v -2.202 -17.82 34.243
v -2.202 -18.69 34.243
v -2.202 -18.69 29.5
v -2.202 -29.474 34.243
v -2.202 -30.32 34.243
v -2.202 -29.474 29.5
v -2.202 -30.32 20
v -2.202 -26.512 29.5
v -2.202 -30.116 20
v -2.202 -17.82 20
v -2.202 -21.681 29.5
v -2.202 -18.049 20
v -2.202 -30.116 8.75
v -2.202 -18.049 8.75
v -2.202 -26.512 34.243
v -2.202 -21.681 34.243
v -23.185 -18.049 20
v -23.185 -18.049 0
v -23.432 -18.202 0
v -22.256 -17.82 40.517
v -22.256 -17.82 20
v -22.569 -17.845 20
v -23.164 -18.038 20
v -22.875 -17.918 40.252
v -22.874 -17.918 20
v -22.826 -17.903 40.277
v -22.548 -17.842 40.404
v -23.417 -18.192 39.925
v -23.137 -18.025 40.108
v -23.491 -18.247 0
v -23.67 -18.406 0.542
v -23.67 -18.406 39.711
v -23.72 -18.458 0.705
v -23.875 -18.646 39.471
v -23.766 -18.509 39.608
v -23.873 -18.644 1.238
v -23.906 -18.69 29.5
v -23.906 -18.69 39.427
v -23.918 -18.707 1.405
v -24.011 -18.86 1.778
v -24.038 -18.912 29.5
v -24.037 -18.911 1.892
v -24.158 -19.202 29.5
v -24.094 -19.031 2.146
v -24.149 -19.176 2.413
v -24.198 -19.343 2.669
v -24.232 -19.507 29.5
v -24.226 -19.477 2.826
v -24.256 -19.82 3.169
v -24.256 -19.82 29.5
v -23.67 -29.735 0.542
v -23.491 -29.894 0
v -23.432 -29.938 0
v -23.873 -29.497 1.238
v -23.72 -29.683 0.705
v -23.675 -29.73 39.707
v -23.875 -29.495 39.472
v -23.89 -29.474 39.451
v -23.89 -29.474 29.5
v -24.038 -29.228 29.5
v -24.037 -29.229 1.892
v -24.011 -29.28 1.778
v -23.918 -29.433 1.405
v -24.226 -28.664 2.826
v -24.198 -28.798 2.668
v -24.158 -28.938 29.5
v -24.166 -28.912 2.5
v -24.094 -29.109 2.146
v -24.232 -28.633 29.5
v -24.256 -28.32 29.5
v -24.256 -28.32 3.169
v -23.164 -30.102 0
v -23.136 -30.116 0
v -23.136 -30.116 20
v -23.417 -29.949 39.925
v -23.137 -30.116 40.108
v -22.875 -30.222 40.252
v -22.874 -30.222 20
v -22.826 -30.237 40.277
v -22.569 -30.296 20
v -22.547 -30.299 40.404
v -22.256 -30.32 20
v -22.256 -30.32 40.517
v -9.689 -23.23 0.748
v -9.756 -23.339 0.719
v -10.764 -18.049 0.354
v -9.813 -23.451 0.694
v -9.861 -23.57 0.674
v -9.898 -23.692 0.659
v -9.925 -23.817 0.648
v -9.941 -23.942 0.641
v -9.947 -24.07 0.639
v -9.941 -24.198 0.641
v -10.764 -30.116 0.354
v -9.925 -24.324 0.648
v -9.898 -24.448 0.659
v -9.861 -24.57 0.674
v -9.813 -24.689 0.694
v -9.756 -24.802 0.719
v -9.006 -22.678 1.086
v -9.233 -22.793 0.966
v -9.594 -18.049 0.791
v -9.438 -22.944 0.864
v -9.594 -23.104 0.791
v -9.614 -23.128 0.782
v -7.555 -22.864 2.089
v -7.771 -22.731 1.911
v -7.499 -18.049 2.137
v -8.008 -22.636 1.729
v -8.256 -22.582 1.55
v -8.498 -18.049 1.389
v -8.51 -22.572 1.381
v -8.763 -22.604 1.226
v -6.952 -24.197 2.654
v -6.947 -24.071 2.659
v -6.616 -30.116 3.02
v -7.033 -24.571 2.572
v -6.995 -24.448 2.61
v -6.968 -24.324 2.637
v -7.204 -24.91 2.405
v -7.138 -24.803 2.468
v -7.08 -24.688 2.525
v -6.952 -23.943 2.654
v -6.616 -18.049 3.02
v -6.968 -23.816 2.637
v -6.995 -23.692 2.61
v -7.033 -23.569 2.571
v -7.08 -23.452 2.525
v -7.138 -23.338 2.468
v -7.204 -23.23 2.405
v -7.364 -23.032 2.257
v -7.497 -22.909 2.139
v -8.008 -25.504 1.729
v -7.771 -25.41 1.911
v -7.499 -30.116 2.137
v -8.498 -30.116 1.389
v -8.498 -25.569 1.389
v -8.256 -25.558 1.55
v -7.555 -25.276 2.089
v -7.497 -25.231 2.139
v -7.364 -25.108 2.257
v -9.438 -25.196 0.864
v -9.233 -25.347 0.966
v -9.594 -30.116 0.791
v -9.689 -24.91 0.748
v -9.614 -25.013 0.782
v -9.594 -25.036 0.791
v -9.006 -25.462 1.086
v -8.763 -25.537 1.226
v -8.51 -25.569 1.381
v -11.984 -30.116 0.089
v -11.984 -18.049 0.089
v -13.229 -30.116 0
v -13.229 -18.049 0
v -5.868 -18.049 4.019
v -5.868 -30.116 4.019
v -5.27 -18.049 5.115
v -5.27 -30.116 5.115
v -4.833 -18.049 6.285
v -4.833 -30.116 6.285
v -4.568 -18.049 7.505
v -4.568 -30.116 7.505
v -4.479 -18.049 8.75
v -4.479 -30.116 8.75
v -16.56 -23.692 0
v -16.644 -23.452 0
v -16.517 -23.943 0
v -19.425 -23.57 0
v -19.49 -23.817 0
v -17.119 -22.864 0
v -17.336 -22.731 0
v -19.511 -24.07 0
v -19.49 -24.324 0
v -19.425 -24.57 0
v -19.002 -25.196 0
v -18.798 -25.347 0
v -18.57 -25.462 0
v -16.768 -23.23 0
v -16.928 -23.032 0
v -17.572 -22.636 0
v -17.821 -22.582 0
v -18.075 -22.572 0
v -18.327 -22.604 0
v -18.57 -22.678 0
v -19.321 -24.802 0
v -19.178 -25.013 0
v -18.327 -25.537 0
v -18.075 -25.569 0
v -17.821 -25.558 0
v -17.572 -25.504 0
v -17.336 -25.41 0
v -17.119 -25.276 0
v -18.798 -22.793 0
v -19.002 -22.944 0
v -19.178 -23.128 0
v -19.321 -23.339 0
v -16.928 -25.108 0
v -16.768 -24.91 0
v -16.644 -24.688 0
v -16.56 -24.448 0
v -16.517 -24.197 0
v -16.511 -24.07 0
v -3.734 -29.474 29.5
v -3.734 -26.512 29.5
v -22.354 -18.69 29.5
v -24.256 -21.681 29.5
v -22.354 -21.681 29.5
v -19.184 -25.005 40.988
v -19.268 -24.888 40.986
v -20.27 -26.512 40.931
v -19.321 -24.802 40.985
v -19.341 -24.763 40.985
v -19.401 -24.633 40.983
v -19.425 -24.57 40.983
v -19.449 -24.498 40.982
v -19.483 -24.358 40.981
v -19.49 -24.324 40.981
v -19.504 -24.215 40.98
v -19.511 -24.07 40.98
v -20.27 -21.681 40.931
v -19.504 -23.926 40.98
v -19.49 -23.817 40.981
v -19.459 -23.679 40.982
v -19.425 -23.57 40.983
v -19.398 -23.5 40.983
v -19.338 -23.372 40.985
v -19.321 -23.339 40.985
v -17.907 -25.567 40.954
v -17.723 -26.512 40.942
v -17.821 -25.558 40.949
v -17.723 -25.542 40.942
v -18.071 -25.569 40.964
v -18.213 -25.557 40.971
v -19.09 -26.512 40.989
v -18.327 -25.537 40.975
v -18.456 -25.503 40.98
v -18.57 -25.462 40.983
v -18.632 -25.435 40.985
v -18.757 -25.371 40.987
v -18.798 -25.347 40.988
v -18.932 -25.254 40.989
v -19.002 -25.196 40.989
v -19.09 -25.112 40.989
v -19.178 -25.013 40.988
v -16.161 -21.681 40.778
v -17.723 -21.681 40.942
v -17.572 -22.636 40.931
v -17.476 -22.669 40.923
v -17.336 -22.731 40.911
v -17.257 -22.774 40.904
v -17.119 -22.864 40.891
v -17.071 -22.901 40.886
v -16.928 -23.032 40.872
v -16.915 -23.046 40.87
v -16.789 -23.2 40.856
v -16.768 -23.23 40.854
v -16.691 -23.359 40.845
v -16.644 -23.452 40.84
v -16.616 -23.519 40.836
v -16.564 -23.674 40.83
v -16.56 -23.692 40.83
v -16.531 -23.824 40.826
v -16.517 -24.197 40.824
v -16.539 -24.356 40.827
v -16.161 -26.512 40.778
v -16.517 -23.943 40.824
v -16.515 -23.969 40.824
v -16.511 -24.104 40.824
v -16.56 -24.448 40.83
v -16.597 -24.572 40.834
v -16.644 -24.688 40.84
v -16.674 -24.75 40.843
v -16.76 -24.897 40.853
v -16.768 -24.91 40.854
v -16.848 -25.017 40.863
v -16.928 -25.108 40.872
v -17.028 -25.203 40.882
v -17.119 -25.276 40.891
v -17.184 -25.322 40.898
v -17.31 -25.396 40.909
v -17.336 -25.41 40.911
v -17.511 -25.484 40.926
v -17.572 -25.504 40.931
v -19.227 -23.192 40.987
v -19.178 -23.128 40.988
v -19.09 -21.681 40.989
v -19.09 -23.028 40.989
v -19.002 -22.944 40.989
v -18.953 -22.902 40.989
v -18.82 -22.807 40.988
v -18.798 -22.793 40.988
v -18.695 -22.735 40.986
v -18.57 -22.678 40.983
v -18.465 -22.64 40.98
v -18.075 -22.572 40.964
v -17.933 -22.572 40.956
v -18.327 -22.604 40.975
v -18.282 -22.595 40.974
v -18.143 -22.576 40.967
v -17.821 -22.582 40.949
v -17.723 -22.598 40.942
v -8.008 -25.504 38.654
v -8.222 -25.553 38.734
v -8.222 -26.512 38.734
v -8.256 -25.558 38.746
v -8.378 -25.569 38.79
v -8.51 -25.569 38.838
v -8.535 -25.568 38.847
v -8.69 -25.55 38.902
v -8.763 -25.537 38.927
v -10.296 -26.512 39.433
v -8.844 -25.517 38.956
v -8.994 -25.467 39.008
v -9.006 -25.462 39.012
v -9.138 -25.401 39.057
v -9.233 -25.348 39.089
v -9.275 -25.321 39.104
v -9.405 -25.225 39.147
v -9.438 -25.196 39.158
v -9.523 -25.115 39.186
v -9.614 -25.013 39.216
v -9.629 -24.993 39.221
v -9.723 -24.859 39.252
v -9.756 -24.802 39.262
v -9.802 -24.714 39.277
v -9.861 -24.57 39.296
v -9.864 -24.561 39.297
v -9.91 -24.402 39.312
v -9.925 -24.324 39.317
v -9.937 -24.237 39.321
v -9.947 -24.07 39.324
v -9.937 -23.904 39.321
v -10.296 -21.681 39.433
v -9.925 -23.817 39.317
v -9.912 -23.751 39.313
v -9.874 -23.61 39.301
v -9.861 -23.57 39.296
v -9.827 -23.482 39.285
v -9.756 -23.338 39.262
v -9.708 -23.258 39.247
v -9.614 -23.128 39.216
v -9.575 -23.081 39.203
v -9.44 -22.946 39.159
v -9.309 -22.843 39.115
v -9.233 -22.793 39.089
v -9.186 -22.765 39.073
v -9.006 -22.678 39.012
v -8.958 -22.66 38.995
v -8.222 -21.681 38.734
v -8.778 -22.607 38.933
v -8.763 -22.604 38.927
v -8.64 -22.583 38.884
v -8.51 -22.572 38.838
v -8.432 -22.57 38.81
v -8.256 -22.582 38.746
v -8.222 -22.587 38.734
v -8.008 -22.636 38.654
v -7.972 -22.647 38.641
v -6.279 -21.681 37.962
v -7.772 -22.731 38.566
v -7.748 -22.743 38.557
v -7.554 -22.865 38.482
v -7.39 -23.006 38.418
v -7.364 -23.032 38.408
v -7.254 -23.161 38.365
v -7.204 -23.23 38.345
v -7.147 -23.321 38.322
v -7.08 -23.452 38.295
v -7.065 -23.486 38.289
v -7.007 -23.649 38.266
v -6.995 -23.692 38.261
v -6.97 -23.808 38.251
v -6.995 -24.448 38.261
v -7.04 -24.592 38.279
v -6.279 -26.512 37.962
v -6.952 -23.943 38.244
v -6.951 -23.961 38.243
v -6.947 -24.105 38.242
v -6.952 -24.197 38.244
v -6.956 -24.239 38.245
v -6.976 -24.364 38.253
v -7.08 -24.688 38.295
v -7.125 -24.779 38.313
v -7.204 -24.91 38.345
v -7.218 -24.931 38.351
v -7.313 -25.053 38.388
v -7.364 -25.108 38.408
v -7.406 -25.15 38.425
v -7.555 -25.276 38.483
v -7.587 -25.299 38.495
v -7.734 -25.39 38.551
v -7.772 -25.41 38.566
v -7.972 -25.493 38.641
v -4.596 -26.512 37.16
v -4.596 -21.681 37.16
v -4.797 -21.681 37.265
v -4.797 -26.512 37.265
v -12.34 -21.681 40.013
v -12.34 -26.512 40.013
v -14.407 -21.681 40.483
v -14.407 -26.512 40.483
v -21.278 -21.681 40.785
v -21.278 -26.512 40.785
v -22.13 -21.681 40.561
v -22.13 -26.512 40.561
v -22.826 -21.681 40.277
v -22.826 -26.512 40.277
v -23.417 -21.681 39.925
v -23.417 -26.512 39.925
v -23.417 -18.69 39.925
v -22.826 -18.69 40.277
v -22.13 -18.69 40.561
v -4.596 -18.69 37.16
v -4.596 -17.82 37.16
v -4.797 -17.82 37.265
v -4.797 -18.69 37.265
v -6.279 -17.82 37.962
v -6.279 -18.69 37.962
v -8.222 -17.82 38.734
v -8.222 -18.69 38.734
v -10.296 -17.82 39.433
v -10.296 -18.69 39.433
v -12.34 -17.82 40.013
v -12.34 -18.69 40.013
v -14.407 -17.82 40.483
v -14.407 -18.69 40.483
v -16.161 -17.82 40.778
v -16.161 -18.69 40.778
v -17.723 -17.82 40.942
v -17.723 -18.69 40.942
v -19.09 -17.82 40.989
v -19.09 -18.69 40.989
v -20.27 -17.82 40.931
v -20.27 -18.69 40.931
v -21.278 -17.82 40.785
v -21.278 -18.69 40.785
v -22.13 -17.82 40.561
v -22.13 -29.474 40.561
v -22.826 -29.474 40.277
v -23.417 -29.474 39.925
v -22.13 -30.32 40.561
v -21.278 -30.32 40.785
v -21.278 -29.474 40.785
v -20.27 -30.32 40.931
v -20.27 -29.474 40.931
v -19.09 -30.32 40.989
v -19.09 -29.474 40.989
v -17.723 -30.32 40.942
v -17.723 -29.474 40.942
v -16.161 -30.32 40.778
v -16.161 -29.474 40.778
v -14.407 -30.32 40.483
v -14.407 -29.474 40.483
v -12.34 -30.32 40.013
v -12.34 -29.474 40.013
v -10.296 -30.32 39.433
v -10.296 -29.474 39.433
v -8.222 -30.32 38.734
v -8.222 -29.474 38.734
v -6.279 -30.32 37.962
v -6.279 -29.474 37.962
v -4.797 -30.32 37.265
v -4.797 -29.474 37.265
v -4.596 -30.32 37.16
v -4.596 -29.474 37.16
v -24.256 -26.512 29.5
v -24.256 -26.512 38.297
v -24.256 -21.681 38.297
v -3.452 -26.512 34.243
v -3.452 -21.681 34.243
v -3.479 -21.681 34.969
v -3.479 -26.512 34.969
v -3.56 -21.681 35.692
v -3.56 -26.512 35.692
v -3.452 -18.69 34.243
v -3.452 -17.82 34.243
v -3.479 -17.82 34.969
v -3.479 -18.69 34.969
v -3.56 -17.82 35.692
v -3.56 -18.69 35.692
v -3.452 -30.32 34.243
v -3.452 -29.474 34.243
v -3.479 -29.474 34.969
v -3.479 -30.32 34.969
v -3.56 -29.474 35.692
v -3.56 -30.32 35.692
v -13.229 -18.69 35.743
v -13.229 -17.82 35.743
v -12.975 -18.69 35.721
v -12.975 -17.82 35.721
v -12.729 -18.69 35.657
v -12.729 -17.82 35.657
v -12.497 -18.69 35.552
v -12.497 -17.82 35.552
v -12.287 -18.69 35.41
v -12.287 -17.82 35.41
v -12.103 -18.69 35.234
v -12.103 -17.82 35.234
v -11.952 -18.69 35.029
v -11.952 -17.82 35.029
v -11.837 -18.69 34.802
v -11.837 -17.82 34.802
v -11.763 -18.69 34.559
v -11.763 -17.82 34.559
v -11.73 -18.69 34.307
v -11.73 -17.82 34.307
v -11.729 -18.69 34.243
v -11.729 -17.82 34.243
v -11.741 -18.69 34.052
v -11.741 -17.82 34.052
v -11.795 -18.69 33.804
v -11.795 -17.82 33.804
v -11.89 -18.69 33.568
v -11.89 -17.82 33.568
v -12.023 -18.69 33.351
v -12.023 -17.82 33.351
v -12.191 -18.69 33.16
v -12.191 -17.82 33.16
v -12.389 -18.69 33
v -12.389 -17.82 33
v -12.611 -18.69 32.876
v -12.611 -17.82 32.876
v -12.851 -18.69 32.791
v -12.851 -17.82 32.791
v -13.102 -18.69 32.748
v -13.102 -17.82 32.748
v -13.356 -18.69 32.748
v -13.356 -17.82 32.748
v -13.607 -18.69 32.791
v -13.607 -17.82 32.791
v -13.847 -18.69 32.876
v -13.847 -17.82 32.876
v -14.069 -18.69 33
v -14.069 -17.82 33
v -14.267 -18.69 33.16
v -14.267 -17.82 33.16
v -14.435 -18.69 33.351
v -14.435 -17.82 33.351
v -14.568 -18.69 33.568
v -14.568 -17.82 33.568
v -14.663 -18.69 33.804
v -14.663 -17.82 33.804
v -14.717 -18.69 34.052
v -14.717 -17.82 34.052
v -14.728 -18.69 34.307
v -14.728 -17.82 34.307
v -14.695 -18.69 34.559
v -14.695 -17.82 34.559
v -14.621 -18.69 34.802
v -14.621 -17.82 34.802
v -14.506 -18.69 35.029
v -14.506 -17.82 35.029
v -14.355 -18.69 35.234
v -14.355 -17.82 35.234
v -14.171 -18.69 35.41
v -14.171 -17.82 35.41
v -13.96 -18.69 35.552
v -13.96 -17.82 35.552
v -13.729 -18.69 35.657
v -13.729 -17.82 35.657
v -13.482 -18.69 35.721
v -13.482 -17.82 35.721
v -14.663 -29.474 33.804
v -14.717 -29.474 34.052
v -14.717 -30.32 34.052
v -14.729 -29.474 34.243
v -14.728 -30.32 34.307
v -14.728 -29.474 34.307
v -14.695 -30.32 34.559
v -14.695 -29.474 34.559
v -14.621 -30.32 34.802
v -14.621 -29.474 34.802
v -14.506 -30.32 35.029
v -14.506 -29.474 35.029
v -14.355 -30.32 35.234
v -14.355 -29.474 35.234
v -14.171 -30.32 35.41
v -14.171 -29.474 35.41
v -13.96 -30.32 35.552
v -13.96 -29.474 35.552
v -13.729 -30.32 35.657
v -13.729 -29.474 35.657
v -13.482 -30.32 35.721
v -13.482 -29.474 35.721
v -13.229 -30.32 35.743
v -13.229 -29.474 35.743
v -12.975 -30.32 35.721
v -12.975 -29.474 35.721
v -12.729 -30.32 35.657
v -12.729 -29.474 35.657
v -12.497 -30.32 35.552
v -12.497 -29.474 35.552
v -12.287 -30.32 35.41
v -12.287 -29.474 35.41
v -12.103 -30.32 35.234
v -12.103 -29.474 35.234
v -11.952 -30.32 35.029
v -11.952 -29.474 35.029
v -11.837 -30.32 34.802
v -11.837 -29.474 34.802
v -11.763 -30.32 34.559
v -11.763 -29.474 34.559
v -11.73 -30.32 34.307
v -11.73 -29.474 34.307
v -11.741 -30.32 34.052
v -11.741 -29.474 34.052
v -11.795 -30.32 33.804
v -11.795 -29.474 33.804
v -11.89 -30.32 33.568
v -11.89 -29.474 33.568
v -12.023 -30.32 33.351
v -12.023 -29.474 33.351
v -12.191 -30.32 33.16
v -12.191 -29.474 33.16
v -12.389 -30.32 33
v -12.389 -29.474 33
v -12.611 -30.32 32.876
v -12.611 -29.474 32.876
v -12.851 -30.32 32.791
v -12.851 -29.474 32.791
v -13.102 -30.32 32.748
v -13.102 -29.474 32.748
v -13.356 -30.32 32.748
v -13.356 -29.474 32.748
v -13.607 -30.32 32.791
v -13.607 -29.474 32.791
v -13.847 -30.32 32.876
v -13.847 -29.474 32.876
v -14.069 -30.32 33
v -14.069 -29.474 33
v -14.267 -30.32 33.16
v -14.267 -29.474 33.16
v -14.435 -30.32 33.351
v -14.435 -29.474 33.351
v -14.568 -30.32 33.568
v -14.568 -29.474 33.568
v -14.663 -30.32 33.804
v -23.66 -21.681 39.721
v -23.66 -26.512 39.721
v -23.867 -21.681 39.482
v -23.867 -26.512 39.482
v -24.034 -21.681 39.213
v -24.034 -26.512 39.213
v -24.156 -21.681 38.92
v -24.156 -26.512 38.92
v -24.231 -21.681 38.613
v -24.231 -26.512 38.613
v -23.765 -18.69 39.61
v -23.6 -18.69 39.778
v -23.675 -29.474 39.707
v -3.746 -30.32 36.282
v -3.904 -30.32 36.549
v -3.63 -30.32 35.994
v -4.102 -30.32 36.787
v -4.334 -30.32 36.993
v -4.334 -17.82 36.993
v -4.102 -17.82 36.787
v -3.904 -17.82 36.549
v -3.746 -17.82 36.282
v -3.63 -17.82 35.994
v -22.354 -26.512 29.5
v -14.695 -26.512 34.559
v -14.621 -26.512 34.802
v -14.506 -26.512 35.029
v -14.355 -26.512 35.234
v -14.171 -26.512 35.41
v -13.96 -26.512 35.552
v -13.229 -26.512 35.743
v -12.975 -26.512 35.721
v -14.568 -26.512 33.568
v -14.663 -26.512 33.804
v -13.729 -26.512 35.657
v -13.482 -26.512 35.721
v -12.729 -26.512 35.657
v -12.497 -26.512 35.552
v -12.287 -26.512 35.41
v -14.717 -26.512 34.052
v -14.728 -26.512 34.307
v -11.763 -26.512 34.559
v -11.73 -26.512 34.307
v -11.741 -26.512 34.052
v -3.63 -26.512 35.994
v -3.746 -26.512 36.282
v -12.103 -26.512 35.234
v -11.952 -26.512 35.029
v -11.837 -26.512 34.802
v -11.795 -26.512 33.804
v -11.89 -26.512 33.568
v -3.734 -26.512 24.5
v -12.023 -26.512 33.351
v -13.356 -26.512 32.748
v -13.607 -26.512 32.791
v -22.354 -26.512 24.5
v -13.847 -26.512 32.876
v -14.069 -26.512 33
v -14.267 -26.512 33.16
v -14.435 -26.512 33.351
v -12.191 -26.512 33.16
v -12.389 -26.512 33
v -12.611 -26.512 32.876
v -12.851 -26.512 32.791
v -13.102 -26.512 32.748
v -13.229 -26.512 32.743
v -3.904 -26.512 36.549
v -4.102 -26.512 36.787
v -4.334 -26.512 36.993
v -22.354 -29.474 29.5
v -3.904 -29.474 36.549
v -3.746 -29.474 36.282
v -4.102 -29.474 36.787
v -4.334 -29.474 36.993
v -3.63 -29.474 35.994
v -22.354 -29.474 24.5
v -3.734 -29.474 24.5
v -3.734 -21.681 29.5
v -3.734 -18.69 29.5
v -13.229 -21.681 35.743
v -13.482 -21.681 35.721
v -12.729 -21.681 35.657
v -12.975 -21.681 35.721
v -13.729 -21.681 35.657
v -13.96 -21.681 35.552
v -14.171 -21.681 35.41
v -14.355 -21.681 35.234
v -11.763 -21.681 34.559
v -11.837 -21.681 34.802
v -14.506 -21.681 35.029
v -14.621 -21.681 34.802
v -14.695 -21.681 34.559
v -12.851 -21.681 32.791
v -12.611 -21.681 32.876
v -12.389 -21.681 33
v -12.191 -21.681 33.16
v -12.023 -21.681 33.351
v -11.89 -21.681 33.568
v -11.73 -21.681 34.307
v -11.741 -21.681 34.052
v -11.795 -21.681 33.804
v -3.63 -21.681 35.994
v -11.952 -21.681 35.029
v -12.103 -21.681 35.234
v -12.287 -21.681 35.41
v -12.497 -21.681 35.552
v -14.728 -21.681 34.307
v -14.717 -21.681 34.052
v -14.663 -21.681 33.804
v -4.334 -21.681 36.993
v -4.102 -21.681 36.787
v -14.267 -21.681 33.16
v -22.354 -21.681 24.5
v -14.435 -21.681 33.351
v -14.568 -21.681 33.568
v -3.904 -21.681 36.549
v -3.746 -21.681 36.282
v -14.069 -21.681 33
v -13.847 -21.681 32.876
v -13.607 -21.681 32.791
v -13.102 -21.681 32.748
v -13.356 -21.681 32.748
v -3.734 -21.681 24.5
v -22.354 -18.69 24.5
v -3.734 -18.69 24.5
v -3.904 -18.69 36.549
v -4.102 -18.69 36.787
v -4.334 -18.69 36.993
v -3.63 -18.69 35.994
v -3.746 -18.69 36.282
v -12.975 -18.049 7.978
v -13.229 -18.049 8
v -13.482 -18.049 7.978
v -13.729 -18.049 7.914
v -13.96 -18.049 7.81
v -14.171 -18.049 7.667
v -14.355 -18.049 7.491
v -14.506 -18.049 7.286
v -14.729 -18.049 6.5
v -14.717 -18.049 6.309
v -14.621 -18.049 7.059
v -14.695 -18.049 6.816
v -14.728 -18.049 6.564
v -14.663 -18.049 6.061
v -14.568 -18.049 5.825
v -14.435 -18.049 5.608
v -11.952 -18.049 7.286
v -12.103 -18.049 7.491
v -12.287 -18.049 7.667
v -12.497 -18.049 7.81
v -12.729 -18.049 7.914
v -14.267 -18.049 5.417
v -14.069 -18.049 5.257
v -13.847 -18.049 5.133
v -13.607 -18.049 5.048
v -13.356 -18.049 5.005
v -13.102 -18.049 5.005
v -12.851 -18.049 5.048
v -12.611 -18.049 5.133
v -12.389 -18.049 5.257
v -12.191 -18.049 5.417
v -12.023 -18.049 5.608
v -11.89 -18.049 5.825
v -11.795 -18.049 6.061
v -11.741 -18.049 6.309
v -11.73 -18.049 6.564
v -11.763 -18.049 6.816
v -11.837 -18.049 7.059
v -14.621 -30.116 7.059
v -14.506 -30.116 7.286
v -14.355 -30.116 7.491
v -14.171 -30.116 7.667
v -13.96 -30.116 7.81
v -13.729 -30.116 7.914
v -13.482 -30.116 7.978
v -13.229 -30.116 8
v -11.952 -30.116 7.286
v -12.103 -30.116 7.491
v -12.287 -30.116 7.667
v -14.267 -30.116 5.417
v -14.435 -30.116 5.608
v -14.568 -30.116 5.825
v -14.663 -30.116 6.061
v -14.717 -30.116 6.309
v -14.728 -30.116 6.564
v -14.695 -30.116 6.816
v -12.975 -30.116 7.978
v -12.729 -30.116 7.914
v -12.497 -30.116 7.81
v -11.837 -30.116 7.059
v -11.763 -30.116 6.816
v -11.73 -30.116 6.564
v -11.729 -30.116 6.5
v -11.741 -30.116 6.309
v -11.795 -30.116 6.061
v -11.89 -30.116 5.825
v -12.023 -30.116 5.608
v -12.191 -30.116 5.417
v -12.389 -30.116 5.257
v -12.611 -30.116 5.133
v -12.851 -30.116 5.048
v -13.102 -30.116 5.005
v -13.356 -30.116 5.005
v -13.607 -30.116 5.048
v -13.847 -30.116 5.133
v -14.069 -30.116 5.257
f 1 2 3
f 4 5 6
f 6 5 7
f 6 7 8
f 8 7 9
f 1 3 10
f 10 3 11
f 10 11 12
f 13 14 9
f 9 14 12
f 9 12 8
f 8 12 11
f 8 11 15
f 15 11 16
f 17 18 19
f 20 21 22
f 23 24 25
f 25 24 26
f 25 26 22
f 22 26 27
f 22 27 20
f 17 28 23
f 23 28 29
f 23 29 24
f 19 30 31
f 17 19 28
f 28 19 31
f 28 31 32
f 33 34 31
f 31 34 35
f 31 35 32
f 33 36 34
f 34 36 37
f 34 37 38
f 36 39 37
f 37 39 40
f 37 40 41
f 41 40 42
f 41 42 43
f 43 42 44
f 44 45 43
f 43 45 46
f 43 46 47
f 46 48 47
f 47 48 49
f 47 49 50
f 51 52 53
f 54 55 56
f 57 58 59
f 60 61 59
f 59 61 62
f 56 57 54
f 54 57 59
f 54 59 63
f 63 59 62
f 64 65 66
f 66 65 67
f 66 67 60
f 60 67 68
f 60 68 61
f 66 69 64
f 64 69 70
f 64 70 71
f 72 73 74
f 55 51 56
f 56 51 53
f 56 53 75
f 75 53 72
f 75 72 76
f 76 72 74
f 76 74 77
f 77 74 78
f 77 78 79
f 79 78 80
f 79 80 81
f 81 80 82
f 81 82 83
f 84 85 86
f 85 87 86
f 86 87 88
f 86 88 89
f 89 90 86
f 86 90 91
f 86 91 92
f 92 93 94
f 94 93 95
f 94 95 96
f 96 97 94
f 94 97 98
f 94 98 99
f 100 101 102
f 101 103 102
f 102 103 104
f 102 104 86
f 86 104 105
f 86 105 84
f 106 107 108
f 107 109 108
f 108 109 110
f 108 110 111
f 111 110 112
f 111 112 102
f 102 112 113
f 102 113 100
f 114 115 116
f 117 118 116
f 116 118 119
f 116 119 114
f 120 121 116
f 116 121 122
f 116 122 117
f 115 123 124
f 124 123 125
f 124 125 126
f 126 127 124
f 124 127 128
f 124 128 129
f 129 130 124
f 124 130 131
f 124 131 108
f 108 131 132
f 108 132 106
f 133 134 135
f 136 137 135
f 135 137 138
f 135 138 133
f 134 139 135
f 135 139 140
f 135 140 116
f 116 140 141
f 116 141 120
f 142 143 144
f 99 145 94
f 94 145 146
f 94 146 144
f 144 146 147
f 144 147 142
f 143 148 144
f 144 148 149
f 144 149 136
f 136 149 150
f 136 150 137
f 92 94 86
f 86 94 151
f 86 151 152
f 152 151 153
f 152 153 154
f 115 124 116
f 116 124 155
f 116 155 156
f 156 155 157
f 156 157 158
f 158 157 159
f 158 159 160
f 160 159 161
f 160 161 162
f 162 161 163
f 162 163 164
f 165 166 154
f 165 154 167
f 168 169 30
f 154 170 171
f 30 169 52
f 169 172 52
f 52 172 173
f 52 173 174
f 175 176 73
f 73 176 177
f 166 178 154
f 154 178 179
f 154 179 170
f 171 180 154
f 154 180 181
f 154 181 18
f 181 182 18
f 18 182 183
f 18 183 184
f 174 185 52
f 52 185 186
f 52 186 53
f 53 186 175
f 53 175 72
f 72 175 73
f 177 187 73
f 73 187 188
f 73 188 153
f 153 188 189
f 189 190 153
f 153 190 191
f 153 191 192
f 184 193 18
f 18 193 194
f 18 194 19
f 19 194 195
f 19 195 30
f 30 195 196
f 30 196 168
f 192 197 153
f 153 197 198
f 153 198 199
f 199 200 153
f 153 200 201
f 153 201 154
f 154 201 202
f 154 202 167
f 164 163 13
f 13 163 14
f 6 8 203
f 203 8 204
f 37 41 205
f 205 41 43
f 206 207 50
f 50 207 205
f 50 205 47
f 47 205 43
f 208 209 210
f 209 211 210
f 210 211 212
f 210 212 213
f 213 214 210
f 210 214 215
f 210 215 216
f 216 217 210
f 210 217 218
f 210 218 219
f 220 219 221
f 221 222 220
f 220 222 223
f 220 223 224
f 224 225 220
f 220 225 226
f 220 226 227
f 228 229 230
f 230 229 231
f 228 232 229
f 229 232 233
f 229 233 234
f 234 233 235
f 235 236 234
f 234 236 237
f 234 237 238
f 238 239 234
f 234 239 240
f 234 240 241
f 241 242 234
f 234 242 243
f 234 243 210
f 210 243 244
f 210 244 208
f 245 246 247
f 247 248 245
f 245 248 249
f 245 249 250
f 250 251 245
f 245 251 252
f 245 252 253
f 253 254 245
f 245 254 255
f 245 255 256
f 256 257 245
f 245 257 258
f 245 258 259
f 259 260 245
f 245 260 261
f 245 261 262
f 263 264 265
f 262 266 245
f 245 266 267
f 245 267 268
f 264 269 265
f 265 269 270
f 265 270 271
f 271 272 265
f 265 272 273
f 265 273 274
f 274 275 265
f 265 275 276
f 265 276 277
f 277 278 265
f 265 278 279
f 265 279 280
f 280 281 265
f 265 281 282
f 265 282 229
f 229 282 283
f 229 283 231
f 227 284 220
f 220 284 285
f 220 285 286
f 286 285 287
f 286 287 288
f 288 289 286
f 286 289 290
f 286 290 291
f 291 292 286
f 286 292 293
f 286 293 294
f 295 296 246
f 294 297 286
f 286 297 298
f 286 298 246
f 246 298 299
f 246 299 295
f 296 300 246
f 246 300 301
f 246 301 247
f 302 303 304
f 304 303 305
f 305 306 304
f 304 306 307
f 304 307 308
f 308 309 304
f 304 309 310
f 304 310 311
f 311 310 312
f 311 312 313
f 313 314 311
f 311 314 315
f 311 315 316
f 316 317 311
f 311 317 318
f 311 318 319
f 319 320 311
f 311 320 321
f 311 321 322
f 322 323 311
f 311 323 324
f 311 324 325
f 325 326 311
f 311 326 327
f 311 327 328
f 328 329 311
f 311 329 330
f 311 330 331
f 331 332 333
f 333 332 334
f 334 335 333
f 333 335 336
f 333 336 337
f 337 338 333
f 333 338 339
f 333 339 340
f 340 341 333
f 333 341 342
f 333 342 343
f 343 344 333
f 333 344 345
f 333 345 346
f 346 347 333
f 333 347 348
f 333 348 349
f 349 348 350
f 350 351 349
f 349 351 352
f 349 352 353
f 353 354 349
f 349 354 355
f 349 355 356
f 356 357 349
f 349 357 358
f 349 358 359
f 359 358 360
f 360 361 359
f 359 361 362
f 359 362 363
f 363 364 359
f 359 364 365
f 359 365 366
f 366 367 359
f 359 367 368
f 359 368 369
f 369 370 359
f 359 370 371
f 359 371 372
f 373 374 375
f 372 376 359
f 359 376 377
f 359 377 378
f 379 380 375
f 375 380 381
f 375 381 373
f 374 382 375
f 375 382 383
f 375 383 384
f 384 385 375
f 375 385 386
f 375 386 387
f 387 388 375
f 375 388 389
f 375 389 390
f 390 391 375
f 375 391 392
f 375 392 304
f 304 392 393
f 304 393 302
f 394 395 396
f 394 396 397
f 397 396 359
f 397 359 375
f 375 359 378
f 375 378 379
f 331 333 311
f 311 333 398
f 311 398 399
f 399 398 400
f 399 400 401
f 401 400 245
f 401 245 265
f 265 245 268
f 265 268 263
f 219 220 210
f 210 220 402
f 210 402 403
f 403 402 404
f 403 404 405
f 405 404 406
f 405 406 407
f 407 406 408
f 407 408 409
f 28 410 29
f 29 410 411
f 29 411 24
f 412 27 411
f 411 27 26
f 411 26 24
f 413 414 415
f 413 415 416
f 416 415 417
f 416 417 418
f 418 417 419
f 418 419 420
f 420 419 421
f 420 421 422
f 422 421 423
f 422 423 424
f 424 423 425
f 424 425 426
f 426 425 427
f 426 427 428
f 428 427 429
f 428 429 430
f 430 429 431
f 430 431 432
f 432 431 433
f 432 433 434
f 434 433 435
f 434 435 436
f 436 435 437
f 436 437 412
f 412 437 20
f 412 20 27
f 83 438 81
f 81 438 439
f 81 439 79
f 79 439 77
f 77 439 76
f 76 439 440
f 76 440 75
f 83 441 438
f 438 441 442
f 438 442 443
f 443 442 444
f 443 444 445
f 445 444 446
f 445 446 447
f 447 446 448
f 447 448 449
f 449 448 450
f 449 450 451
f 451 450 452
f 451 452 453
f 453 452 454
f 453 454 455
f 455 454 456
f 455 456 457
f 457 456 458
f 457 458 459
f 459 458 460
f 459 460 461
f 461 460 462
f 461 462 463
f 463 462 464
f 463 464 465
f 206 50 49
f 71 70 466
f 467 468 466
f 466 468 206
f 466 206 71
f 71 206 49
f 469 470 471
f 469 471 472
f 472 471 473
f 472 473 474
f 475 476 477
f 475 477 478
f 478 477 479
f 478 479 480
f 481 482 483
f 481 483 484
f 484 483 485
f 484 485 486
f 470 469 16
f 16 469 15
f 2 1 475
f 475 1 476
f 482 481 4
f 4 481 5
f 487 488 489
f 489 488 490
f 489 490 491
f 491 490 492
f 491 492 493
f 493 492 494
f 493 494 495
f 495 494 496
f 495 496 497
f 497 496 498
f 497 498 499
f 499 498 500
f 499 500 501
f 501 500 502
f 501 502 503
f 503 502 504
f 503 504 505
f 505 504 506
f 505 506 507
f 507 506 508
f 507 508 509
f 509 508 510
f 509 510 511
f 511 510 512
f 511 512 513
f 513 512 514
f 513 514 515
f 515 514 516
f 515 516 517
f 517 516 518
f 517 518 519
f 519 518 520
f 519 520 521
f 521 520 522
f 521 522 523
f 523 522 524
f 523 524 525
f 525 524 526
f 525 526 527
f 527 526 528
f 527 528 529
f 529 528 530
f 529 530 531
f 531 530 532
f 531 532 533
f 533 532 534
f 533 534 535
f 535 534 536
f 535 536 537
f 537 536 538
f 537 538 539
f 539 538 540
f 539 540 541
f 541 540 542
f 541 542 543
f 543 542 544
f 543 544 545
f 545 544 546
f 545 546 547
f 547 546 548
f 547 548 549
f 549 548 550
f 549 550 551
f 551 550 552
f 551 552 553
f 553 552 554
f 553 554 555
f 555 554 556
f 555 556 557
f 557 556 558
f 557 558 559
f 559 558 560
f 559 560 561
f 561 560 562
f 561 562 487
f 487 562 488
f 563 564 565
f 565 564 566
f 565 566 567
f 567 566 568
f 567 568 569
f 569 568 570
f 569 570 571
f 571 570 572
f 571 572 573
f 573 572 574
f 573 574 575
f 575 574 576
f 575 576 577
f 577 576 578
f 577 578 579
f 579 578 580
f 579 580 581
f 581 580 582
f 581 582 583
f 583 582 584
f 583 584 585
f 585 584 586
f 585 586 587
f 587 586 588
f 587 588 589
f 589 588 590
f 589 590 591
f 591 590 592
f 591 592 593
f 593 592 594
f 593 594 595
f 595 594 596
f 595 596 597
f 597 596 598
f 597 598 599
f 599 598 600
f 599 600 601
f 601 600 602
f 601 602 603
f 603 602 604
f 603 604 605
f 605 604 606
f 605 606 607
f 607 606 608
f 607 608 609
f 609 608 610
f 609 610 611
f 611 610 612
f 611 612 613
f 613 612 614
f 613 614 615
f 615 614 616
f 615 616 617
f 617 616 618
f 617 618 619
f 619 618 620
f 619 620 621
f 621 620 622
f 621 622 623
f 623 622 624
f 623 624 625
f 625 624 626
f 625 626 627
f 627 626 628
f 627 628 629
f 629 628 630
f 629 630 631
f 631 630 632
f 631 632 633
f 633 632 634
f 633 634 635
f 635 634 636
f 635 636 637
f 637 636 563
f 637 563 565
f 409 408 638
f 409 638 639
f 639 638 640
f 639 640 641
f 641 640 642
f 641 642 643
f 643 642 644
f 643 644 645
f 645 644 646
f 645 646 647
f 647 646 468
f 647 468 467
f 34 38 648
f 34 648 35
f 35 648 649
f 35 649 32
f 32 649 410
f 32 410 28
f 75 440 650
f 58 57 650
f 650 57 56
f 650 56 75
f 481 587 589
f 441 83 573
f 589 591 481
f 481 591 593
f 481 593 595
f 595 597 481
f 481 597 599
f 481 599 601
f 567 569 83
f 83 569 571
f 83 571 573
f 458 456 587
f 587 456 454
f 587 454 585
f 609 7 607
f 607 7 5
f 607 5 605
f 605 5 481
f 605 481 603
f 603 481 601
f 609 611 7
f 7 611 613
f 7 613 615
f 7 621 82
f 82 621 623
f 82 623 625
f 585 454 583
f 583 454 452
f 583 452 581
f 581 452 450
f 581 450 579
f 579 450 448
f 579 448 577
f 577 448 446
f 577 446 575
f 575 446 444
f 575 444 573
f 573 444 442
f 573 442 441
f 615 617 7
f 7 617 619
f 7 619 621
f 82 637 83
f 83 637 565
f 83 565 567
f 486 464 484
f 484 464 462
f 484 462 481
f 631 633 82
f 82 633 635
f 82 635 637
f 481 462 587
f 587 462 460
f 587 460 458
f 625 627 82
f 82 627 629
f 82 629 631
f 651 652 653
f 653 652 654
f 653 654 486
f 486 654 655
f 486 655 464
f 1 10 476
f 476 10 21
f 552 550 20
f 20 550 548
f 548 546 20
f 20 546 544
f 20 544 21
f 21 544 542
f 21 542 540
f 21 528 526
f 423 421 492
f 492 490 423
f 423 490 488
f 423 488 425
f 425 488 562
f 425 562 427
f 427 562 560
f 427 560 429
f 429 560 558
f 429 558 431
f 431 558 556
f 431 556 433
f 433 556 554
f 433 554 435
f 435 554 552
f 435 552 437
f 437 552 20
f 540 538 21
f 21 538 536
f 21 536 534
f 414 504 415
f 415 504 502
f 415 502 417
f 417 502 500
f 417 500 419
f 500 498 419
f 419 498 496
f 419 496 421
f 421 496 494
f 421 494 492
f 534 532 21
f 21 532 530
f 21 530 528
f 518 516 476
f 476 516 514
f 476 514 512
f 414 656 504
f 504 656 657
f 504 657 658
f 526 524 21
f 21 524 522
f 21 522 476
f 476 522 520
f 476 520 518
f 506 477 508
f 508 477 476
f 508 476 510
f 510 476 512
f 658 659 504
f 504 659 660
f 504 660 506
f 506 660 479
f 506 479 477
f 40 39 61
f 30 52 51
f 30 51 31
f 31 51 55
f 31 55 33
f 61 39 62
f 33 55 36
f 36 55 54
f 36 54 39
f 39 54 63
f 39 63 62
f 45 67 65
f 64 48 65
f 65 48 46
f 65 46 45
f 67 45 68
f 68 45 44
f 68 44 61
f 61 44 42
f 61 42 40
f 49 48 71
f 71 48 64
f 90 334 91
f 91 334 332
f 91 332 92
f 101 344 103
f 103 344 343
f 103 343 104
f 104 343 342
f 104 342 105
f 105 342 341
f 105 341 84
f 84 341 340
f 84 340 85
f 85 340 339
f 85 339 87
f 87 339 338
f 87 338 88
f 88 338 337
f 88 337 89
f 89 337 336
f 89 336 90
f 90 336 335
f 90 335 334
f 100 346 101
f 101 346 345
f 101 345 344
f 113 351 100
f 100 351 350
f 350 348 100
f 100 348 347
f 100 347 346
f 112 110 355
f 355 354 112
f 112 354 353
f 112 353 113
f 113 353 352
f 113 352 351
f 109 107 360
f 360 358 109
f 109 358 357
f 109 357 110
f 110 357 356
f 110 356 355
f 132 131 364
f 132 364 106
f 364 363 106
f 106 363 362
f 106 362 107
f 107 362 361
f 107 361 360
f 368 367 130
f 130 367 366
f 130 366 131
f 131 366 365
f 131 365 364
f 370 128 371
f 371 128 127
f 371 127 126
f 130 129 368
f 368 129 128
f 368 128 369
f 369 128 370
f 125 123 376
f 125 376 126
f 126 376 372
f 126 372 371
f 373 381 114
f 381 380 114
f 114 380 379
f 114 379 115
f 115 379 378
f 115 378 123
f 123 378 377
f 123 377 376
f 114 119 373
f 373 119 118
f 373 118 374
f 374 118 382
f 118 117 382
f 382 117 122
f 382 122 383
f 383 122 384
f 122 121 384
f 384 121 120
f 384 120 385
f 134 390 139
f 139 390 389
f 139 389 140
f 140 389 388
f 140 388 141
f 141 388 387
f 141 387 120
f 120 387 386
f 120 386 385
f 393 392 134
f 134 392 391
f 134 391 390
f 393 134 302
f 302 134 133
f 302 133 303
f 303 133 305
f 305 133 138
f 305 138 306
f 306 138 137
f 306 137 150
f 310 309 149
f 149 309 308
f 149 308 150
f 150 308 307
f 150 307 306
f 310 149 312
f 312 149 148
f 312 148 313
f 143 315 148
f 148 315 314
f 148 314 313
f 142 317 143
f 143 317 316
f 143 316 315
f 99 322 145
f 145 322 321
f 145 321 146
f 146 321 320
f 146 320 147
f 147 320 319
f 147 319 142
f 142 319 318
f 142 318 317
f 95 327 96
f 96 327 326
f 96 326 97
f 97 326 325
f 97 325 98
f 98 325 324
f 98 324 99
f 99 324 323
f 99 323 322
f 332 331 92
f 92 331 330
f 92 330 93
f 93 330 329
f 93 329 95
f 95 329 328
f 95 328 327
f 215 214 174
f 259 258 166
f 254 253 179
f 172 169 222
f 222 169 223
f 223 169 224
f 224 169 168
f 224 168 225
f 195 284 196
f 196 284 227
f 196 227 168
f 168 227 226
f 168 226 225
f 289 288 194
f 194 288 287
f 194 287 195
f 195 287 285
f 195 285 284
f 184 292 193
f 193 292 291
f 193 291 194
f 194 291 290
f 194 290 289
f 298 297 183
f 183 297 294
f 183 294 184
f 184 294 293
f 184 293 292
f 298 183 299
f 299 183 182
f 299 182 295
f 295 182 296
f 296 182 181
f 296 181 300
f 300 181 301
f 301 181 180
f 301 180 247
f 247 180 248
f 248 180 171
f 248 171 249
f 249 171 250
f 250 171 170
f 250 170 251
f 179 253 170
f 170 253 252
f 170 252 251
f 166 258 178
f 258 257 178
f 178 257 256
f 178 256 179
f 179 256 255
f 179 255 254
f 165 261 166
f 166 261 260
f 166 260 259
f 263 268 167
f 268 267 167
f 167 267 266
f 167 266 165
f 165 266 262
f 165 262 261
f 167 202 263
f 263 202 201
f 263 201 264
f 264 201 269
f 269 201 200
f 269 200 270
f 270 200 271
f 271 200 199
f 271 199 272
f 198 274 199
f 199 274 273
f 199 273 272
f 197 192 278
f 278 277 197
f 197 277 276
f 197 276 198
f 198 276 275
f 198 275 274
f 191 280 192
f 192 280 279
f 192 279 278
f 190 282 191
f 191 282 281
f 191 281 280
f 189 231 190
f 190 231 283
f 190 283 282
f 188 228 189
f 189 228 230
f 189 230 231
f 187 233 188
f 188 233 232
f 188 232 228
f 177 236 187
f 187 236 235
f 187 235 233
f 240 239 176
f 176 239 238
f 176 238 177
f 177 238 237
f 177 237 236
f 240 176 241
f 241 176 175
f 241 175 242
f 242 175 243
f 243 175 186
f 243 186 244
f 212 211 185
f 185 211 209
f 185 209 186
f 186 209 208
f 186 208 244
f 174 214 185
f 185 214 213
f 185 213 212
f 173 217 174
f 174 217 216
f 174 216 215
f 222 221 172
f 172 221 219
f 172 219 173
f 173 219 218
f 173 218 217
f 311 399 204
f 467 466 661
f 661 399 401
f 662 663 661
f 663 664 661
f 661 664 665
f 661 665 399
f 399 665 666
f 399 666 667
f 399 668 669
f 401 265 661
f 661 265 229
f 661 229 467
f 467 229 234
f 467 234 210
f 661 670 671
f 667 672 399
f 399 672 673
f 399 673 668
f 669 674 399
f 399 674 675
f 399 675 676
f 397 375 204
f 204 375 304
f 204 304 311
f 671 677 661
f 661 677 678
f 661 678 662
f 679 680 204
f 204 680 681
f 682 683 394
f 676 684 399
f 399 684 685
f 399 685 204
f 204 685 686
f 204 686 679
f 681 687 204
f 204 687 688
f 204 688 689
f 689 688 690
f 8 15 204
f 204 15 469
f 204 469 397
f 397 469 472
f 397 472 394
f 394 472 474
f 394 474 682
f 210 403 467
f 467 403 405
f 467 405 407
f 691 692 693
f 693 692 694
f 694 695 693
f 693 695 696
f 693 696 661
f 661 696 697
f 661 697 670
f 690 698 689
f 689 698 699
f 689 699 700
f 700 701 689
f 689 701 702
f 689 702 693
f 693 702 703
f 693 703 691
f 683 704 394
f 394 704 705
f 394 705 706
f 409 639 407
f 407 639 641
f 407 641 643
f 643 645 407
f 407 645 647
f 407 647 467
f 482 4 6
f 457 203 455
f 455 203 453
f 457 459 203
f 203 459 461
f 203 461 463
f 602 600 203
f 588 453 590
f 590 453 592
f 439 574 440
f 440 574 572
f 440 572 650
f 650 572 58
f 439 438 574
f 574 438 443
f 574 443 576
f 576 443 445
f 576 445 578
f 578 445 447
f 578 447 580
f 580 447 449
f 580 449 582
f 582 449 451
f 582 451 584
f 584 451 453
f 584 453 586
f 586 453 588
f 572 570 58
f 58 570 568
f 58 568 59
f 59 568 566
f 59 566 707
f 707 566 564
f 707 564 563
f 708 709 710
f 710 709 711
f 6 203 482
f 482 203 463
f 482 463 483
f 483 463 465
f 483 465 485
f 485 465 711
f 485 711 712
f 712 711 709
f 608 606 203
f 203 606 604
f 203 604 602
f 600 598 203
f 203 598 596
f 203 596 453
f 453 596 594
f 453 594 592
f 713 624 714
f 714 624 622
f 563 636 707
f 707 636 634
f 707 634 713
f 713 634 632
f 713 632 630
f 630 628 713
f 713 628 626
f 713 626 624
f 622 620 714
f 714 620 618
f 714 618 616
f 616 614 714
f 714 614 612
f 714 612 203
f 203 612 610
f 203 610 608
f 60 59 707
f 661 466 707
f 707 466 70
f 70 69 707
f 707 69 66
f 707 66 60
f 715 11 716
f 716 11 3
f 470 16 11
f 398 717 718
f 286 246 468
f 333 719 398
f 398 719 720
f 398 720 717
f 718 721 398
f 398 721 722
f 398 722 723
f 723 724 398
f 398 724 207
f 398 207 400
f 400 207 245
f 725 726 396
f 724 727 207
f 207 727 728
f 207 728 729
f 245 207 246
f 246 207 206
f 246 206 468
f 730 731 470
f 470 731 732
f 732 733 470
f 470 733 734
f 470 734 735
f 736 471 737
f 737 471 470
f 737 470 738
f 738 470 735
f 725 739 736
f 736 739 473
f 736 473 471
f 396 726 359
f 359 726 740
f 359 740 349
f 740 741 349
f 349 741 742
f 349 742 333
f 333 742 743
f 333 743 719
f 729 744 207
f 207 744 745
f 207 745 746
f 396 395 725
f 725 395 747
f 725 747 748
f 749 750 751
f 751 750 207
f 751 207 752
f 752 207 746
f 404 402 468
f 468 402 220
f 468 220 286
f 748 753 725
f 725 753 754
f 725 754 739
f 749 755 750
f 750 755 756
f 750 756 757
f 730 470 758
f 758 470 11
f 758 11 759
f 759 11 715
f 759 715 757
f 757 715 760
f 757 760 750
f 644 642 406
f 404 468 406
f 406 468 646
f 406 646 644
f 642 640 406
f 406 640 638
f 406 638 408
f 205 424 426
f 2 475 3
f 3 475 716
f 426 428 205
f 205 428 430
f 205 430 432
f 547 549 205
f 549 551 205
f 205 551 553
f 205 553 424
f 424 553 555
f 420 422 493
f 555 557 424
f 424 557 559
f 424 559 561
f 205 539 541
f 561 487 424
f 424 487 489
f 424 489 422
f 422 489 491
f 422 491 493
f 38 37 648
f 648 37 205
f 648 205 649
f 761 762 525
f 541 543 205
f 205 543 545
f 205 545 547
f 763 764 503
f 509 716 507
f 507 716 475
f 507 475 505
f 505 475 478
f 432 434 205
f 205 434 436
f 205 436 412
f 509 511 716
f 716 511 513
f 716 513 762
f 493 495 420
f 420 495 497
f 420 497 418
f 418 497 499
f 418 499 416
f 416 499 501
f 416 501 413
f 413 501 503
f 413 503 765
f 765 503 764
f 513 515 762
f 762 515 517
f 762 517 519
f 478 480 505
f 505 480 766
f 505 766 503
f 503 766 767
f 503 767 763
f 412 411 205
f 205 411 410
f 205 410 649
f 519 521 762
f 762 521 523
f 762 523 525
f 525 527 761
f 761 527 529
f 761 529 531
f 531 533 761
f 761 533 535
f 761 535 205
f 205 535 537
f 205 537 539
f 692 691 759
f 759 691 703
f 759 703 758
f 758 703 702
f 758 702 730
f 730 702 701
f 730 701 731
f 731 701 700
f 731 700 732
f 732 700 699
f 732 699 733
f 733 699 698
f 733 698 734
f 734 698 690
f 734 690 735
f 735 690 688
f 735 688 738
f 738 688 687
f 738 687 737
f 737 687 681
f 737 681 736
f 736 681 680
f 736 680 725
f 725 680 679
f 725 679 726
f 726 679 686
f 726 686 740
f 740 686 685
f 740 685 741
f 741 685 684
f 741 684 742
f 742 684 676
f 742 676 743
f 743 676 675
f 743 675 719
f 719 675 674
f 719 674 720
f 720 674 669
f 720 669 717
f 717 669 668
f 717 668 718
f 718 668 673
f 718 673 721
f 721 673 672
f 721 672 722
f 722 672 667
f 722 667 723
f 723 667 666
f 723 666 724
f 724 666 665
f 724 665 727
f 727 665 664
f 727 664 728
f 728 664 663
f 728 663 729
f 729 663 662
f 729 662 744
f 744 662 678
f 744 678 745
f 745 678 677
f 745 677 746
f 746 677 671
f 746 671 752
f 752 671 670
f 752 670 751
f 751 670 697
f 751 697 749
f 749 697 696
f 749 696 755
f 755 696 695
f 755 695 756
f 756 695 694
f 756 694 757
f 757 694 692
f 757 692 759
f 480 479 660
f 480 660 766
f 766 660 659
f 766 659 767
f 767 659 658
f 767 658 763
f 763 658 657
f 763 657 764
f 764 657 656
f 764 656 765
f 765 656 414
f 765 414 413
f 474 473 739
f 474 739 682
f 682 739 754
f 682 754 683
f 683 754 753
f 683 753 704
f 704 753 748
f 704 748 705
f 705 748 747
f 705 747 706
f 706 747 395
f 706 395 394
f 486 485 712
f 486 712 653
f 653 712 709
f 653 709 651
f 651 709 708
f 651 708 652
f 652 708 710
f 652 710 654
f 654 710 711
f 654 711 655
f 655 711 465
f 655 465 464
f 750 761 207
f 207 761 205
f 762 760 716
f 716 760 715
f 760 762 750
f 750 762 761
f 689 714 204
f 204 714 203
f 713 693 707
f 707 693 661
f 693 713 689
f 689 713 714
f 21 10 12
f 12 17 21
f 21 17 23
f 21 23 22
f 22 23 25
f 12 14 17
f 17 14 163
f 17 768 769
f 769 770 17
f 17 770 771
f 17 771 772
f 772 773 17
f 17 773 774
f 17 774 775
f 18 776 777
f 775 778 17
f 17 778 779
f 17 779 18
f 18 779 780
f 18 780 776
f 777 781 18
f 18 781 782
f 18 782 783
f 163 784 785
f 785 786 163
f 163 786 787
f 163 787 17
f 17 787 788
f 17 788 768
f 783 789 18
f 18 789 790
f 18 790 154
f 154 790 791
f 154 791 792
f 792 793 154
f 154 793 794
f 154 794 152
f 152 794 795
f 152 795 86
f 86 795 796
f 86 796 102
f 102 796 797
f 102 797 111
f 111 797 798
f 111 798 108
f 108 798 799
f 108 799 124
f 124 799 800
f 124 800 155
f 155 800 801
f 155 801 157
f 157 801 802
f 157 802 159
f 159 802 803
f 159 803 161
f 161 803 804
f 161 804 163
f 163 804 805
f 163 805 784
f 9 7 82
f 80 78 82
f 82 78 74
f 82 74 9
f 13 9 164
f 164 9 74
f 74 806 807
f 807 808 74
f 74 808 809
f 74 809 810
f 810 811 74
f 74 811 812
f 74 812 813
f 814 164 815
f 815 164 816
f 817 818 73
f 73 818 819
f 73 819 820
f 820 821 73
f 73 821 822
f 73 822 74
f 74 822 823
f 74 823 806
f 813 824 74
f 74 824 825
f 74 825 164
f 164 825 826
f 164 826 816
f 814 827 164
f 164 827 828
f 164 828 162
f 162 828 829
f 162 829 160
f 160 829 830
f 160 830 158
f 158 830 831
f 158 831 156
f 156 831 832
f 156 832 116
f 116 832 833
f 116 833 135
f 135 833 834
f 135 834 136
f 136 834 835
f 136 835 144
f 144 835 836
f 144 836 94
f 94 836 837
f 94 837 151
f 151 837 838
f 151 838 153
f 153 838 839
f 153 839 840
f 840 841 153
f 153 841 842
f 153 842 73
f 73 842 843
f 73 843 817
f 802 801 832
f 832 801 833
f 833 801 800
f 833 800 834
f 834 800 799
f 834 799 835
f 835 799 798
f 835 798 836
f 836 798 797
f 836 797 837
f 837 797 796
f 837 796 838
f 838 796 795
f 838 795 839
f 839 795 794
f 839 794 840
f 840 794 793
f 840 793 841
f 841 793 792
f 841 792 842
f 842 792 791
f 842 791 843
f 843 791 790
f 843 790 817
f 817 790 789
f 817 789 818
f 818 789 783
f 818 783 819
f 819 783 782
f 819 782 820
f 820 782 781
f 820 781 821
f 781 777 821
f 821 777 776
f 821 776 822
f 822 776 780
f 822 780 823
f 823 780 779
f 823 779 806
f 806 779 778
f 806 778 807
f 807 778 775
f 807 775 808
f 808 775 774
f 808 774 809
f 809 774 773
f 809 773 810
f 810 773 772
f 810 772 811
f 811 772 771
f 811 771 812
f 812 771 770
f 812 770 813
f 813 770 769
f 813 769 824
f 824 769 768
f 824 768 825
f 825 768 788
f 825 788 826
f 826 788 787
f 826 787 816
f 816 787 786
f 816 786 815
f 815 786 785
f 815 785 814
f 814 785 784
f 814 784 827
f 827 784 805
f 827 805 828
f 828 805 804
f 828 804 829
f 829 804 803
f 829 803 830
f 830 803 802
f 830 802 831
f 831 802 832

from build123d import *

# Parameters (mm, degrees)
SKETCH1_W               = 22.054431489
SKETCH1_H               = 12.5
BOSS_EXTRUDE1_DEPTH     = 43
CUT_EXTRUDE1_DEPTH      = 10
CUT_EXTRUDE1_DEPTH_BACK = 15
SKETCH2_R               = 1.5
FILLET3_R               = 2
SKETCH5_R               = 1.5
CUT_EXTRUDE4_DEPTH      = 57.460223181
CUT_EXTRUDE6_DEPTH      = 10
CUT_EXTRUDE6_DEPTH_BACK = 8.5
SKETCH16_W              = 22.254981862
SKETCH16_H              = 2.991460448
SKETCH16_H_2            = 2.962476682
FILLET4_R               = 2
SKETCH17_W              = 18.620112401
SKETCH17_H              = 2.962476682
SKETCH17_H_2            = 2.991460448
CUT_EXTRUDE7_DEPTH      = 5
SKETCH18_W              = 23.815970502
SKETCH18_H              = 0.508634756
SKETCH18_W_2            = 23.819185945
SKETCH18_H_2            = 0.668990904
CUT_EXTRUDE8_DEPTH      = 20


with BuildPart() as part:
    # Sketch1 → Boss-Extrude1 (new body)
    with BuildSketch(Plane.XY):
        with Locations((-13.228930986, -24.070183414)):
            Rectangle(SKETCH1_W, SKETCH1_H)
    extrude(amount=BOSS_EXTRUDE1_DEPTH)

    # Sketch2 → Cut-Extrude1 (cut, two sides: drawn at the far end of the back side and taken through both)
    with BuildSketch(Plane.XZ.offset(30.320183414).offset(-CUT_EXTRUDE1_DEPTH_BACK)):
        with Locations(Location((-13.228930986, 6.5, 0), (0, 0, 90))):
            Circle(SKETCH2_R)
        with Locations(Location((-13.228930986, 34.242856315, 0), (0, 0, 90))):
            Circle(SKETCH2_R)
        with BuildLine():
            Line((-3.452400544, 34.242856315), (-2.201715242, 34.242856315))
            add(Edge.make_bspline(
                [(-24.256146731, 33.845079723), (-30.575526658, 43.607362182), (-11.195866971, 55.012360634), (11.473693948, 42.135391331), (-2.201715242, 34.242856315)],
                knots=[0, 0, 0, 0, 0.486113305, 1, 1, 1, 1], degree=3))
            add(Edge.make_bspline(
                [(-3.757837453, 36.667507789), (-8.059315717, 39.510148032), (-28.688217354, 46.070013084), (-24.256146731, 33.845079723)],
                knots=[0, 0, 0, 0, 1, 1, 1, 1], degree=3))
            ThreePointArc((-3.757837453, 36.667507789), (-3.529060324, 35.464763275), (-3.452400544, 34.242856315))
        make_face()
        with BuildLine():
            Line((-4.478930986, 8.75), (-2.201715242, 8.75))
            add(Edge.make_bspline(
                [(-2.201715242, 8.75), (5.39210746, 3.880294823), (-0.777052631, -4.523329032), (-17.174300591, -10.623347238), (-34.821400648, -0.026005424), (-24.256146731, 8.75)],
                knots=[0, 0, 0, 0, 0.283272691, 0.504244858, 1, 1, 1, 1], degree=3))
            add(Edge.make_bspline(
                [(-23.490579314, 0), (-24.966512963, 4.237786421), (-24.256146731, 8.75)],
                knots=[0, 0, 0, 1, 1, 1], degree=2))
            Line((-23.490579314, 0), (-13.228930986, 0))
            ThreePointArc((-13.228930986, 0), (-7.041746651, 2.562815665), (-4.478930986, 8.75))
        make_face()
    extrude(amount=CUT_EXTRUDE1_DEPTH + CUT_EXTRUDE1_DEPTH_BACK, mode=Mode.SUBTRACT)

    # Fillet3
    # the kernel refuses this fillet: 2 mm, written as the material it takes off along each edge
    with BuildSketch(Plane(origin=(-24.256146731, -17.820183414, -5.498495188), x_dir=(1, 0, 0), z_dir=(0, 0, 1))) as fillet3_piece_1:
        with BuildLine():
            CenterArc((FILLET3_R, -FILLET3_R), FILLET3_R, 90, 90)
            Line((0, -FILLET3_R), (-FILLET3_R * 0.02, -FILLET3_R))
            Line((-FILLET3_R * 0.02, -FILLET3_R), (-FILLET3_R * 0.02, FILLET3_R * 0.02))
            Line((-FILLET3_R * 0.02, FILLET3_R * 0.02), (FILLET3_R, FILLET3_R * 0.02))
            Line((FILLET3_R, FILLET3_R * 0.02), (FILLET3_R, 0))
        make_face()
    extrude(amount=49.579952304, mode=Mode.SUBTRACT)
    with BuildSketch(Plane(origin=(-24.256146731, -30.320183414, -5.498495188), x_dir=(1, 0, 0), z_dir=(0, 0, 1))) as fillet3_piece_2:
        with BuildLine():
            CenterArc((FILLET3_R, FILLET3_R), FILLET3_R, 180, 90)
            Line((0, FILLET3_R), (-FILLET3_R * 0.02, FILLET3_R))
            Line((-FILLET3_R * 0.02, FILLET3_R), (-FILLET3_R * 0.02, -FILLET3_R * 0.02))
            Line((-FILLET3_R * 0.02, -FILLET3_R * 0.02), (FILLET3_R, -FILLET3_R * 0.02))
            Line((FILLET3_R, -FILLET3_R * 0.02), (FILLET3_R, 0))
        make_face()
    extrude(amount=49.579952304, mode=Mode.SUBTRACT)
    with BuildSketch(Plane(origin=(-24.256146731, -17.374523396, 3.001504812), x_dir=(0.16676818592575848, -1.2260366807919533e-15, -0.9859961319209278), z_dir=(0, -1, 0))) as fillet3_piece_3:
        with BuildLine():
            CenterArc((0.168096911, 1.999974157), FILLET3_R, 260.400032587, 9.891234523)
            Line((-0.165439461, 0.027981894), (-0.172110188, -0.011457952))
            Line((-0.172110188, -0.011457952), (-0.006670727, -0.039439845))
            Line((-0.006670727, -0.039439845), (-0.00020343, -0.039999483))
            ThreePointArc((-0.00020343, -0.039999483), (0.089132026, -0.040226606), (0.178467349, -0.039999483))
            Line((0.178467349, -0.039999483), (0.178264007, 0))
        make_face()
    extrude(amount=13.391320036, mode=Mode.SUBTRACT)
    with BuildSketch(Plane(origin=(-24.256146731, -14.845669726, 39.081457115), x_dir=(0.7050638771295608, 0, 0.7091438000624637), z_dir=(0, -1, 0))) as fillet3_piece_4:
        with BuildLine():
            CenterArc((0.853663976, -1.971549871), FILLET3_R, 80.324332734, 54.510372083)
            Line((-0.556463778, -0.553262271), (-0.584666333, -0.524896519))
            Line((-0.584666333, -0.524896519), (-0.028202555, 0.028365752))
            Line((-0.028202555, 0.028365752), (-0.007160044, 0.039353955))
            ThreePointArc((-0.007160044, 0.039353955), (0.595170372, 0.092331415), (1.196528305, 0.039430997))
            Line((1.196528305, 0.039430997), (1.189805475, 0))
        make_face()
    extrude(amount=18.449027376, mode=Mode.SUBTRACT)

    # Sketch5 → Cut-Extrude4 (cut, through all)
    with BuildSketch(Plane.XY):
        with Locations(Location((-18.011106811, -24.070183414, 0), (0, 0, 180))):
            Circle(SKETCH5_R)
        with Locations(Location((-8.446755162, -24.070183414, 0), (0, 0, 180))):
            Circle(SKETCH5_R)
    extrude(amount=CUT_EXTRUDE4_DEPTH, mode=Mode.SUBTRACT)

    # Sketch16 → Cut-Extrude6 (cut, two sides: drawn at the far end of the back side and taken through both)
    with BuildSketch(Plane.XY.offset(38).offset(-CUT_EXTRUDE6_DEPTH_BACK)):
        with Locations((-13.23420775, -20.185246876)):
            Rectangle(SKETCH16_W, SKETCH16_H)
        with Locations((-13.23420775, -27.993084265)):
            Rectangle(SKETCH16_W, SKETCH16_H_2)
    extrude(amount=CUT_EXTRUDE6_DEPTH + CUT_EXTRUDE6_DEPTH_BACK, mode=Mode.SUBTRACT)

    # Fillet4
    fillet4_edges = [part.edges().sort_by_distance(p)[0] for p in [
        (-3.757837453, -18.254850033, 36.667507789),
        (-3.757837453, -24.096411512, 36.667507789),
        (-3.757837453, -29.89725301, 36.667507789),
    ]]
    fillet(fillet4_edges, radius=FILLET4_R)

    # Sketch17 → Cut-Extrude7 (cut)
    with BuildSketch(Plane.XY.offset(29.5)):
        with Locations((-13.043692231, -27.993084265)):
            Rectangle(SKETCH17_W, SKETCH17_H)
        with Locations((-13.043692231, -20.185246876)):
            Rectangle(SKETCH17_W, SKETCH17_H_2)
    extrude(amount=-CUT_EXTRUDE7_DEPTH, mode=Mode.SUBTRACT)

    # Sketch18 → Cut-Extrude8 (cut)
    with BuildSketch(Plane.XY):
        with Locations((-13.361747728, -30.370746627)):
            Rectangle(SKETCH18_W, SKETCH18_H)
        with Locations((-13.36335545, -17.714562357)):
            Rectangle(SKETCH18_W_2, SKETCH18_H_2)
    extrude(amount=CUT_EXTRUDE8_DEPTH, mode=Mode.SUBTRACT)


solid = part.part
